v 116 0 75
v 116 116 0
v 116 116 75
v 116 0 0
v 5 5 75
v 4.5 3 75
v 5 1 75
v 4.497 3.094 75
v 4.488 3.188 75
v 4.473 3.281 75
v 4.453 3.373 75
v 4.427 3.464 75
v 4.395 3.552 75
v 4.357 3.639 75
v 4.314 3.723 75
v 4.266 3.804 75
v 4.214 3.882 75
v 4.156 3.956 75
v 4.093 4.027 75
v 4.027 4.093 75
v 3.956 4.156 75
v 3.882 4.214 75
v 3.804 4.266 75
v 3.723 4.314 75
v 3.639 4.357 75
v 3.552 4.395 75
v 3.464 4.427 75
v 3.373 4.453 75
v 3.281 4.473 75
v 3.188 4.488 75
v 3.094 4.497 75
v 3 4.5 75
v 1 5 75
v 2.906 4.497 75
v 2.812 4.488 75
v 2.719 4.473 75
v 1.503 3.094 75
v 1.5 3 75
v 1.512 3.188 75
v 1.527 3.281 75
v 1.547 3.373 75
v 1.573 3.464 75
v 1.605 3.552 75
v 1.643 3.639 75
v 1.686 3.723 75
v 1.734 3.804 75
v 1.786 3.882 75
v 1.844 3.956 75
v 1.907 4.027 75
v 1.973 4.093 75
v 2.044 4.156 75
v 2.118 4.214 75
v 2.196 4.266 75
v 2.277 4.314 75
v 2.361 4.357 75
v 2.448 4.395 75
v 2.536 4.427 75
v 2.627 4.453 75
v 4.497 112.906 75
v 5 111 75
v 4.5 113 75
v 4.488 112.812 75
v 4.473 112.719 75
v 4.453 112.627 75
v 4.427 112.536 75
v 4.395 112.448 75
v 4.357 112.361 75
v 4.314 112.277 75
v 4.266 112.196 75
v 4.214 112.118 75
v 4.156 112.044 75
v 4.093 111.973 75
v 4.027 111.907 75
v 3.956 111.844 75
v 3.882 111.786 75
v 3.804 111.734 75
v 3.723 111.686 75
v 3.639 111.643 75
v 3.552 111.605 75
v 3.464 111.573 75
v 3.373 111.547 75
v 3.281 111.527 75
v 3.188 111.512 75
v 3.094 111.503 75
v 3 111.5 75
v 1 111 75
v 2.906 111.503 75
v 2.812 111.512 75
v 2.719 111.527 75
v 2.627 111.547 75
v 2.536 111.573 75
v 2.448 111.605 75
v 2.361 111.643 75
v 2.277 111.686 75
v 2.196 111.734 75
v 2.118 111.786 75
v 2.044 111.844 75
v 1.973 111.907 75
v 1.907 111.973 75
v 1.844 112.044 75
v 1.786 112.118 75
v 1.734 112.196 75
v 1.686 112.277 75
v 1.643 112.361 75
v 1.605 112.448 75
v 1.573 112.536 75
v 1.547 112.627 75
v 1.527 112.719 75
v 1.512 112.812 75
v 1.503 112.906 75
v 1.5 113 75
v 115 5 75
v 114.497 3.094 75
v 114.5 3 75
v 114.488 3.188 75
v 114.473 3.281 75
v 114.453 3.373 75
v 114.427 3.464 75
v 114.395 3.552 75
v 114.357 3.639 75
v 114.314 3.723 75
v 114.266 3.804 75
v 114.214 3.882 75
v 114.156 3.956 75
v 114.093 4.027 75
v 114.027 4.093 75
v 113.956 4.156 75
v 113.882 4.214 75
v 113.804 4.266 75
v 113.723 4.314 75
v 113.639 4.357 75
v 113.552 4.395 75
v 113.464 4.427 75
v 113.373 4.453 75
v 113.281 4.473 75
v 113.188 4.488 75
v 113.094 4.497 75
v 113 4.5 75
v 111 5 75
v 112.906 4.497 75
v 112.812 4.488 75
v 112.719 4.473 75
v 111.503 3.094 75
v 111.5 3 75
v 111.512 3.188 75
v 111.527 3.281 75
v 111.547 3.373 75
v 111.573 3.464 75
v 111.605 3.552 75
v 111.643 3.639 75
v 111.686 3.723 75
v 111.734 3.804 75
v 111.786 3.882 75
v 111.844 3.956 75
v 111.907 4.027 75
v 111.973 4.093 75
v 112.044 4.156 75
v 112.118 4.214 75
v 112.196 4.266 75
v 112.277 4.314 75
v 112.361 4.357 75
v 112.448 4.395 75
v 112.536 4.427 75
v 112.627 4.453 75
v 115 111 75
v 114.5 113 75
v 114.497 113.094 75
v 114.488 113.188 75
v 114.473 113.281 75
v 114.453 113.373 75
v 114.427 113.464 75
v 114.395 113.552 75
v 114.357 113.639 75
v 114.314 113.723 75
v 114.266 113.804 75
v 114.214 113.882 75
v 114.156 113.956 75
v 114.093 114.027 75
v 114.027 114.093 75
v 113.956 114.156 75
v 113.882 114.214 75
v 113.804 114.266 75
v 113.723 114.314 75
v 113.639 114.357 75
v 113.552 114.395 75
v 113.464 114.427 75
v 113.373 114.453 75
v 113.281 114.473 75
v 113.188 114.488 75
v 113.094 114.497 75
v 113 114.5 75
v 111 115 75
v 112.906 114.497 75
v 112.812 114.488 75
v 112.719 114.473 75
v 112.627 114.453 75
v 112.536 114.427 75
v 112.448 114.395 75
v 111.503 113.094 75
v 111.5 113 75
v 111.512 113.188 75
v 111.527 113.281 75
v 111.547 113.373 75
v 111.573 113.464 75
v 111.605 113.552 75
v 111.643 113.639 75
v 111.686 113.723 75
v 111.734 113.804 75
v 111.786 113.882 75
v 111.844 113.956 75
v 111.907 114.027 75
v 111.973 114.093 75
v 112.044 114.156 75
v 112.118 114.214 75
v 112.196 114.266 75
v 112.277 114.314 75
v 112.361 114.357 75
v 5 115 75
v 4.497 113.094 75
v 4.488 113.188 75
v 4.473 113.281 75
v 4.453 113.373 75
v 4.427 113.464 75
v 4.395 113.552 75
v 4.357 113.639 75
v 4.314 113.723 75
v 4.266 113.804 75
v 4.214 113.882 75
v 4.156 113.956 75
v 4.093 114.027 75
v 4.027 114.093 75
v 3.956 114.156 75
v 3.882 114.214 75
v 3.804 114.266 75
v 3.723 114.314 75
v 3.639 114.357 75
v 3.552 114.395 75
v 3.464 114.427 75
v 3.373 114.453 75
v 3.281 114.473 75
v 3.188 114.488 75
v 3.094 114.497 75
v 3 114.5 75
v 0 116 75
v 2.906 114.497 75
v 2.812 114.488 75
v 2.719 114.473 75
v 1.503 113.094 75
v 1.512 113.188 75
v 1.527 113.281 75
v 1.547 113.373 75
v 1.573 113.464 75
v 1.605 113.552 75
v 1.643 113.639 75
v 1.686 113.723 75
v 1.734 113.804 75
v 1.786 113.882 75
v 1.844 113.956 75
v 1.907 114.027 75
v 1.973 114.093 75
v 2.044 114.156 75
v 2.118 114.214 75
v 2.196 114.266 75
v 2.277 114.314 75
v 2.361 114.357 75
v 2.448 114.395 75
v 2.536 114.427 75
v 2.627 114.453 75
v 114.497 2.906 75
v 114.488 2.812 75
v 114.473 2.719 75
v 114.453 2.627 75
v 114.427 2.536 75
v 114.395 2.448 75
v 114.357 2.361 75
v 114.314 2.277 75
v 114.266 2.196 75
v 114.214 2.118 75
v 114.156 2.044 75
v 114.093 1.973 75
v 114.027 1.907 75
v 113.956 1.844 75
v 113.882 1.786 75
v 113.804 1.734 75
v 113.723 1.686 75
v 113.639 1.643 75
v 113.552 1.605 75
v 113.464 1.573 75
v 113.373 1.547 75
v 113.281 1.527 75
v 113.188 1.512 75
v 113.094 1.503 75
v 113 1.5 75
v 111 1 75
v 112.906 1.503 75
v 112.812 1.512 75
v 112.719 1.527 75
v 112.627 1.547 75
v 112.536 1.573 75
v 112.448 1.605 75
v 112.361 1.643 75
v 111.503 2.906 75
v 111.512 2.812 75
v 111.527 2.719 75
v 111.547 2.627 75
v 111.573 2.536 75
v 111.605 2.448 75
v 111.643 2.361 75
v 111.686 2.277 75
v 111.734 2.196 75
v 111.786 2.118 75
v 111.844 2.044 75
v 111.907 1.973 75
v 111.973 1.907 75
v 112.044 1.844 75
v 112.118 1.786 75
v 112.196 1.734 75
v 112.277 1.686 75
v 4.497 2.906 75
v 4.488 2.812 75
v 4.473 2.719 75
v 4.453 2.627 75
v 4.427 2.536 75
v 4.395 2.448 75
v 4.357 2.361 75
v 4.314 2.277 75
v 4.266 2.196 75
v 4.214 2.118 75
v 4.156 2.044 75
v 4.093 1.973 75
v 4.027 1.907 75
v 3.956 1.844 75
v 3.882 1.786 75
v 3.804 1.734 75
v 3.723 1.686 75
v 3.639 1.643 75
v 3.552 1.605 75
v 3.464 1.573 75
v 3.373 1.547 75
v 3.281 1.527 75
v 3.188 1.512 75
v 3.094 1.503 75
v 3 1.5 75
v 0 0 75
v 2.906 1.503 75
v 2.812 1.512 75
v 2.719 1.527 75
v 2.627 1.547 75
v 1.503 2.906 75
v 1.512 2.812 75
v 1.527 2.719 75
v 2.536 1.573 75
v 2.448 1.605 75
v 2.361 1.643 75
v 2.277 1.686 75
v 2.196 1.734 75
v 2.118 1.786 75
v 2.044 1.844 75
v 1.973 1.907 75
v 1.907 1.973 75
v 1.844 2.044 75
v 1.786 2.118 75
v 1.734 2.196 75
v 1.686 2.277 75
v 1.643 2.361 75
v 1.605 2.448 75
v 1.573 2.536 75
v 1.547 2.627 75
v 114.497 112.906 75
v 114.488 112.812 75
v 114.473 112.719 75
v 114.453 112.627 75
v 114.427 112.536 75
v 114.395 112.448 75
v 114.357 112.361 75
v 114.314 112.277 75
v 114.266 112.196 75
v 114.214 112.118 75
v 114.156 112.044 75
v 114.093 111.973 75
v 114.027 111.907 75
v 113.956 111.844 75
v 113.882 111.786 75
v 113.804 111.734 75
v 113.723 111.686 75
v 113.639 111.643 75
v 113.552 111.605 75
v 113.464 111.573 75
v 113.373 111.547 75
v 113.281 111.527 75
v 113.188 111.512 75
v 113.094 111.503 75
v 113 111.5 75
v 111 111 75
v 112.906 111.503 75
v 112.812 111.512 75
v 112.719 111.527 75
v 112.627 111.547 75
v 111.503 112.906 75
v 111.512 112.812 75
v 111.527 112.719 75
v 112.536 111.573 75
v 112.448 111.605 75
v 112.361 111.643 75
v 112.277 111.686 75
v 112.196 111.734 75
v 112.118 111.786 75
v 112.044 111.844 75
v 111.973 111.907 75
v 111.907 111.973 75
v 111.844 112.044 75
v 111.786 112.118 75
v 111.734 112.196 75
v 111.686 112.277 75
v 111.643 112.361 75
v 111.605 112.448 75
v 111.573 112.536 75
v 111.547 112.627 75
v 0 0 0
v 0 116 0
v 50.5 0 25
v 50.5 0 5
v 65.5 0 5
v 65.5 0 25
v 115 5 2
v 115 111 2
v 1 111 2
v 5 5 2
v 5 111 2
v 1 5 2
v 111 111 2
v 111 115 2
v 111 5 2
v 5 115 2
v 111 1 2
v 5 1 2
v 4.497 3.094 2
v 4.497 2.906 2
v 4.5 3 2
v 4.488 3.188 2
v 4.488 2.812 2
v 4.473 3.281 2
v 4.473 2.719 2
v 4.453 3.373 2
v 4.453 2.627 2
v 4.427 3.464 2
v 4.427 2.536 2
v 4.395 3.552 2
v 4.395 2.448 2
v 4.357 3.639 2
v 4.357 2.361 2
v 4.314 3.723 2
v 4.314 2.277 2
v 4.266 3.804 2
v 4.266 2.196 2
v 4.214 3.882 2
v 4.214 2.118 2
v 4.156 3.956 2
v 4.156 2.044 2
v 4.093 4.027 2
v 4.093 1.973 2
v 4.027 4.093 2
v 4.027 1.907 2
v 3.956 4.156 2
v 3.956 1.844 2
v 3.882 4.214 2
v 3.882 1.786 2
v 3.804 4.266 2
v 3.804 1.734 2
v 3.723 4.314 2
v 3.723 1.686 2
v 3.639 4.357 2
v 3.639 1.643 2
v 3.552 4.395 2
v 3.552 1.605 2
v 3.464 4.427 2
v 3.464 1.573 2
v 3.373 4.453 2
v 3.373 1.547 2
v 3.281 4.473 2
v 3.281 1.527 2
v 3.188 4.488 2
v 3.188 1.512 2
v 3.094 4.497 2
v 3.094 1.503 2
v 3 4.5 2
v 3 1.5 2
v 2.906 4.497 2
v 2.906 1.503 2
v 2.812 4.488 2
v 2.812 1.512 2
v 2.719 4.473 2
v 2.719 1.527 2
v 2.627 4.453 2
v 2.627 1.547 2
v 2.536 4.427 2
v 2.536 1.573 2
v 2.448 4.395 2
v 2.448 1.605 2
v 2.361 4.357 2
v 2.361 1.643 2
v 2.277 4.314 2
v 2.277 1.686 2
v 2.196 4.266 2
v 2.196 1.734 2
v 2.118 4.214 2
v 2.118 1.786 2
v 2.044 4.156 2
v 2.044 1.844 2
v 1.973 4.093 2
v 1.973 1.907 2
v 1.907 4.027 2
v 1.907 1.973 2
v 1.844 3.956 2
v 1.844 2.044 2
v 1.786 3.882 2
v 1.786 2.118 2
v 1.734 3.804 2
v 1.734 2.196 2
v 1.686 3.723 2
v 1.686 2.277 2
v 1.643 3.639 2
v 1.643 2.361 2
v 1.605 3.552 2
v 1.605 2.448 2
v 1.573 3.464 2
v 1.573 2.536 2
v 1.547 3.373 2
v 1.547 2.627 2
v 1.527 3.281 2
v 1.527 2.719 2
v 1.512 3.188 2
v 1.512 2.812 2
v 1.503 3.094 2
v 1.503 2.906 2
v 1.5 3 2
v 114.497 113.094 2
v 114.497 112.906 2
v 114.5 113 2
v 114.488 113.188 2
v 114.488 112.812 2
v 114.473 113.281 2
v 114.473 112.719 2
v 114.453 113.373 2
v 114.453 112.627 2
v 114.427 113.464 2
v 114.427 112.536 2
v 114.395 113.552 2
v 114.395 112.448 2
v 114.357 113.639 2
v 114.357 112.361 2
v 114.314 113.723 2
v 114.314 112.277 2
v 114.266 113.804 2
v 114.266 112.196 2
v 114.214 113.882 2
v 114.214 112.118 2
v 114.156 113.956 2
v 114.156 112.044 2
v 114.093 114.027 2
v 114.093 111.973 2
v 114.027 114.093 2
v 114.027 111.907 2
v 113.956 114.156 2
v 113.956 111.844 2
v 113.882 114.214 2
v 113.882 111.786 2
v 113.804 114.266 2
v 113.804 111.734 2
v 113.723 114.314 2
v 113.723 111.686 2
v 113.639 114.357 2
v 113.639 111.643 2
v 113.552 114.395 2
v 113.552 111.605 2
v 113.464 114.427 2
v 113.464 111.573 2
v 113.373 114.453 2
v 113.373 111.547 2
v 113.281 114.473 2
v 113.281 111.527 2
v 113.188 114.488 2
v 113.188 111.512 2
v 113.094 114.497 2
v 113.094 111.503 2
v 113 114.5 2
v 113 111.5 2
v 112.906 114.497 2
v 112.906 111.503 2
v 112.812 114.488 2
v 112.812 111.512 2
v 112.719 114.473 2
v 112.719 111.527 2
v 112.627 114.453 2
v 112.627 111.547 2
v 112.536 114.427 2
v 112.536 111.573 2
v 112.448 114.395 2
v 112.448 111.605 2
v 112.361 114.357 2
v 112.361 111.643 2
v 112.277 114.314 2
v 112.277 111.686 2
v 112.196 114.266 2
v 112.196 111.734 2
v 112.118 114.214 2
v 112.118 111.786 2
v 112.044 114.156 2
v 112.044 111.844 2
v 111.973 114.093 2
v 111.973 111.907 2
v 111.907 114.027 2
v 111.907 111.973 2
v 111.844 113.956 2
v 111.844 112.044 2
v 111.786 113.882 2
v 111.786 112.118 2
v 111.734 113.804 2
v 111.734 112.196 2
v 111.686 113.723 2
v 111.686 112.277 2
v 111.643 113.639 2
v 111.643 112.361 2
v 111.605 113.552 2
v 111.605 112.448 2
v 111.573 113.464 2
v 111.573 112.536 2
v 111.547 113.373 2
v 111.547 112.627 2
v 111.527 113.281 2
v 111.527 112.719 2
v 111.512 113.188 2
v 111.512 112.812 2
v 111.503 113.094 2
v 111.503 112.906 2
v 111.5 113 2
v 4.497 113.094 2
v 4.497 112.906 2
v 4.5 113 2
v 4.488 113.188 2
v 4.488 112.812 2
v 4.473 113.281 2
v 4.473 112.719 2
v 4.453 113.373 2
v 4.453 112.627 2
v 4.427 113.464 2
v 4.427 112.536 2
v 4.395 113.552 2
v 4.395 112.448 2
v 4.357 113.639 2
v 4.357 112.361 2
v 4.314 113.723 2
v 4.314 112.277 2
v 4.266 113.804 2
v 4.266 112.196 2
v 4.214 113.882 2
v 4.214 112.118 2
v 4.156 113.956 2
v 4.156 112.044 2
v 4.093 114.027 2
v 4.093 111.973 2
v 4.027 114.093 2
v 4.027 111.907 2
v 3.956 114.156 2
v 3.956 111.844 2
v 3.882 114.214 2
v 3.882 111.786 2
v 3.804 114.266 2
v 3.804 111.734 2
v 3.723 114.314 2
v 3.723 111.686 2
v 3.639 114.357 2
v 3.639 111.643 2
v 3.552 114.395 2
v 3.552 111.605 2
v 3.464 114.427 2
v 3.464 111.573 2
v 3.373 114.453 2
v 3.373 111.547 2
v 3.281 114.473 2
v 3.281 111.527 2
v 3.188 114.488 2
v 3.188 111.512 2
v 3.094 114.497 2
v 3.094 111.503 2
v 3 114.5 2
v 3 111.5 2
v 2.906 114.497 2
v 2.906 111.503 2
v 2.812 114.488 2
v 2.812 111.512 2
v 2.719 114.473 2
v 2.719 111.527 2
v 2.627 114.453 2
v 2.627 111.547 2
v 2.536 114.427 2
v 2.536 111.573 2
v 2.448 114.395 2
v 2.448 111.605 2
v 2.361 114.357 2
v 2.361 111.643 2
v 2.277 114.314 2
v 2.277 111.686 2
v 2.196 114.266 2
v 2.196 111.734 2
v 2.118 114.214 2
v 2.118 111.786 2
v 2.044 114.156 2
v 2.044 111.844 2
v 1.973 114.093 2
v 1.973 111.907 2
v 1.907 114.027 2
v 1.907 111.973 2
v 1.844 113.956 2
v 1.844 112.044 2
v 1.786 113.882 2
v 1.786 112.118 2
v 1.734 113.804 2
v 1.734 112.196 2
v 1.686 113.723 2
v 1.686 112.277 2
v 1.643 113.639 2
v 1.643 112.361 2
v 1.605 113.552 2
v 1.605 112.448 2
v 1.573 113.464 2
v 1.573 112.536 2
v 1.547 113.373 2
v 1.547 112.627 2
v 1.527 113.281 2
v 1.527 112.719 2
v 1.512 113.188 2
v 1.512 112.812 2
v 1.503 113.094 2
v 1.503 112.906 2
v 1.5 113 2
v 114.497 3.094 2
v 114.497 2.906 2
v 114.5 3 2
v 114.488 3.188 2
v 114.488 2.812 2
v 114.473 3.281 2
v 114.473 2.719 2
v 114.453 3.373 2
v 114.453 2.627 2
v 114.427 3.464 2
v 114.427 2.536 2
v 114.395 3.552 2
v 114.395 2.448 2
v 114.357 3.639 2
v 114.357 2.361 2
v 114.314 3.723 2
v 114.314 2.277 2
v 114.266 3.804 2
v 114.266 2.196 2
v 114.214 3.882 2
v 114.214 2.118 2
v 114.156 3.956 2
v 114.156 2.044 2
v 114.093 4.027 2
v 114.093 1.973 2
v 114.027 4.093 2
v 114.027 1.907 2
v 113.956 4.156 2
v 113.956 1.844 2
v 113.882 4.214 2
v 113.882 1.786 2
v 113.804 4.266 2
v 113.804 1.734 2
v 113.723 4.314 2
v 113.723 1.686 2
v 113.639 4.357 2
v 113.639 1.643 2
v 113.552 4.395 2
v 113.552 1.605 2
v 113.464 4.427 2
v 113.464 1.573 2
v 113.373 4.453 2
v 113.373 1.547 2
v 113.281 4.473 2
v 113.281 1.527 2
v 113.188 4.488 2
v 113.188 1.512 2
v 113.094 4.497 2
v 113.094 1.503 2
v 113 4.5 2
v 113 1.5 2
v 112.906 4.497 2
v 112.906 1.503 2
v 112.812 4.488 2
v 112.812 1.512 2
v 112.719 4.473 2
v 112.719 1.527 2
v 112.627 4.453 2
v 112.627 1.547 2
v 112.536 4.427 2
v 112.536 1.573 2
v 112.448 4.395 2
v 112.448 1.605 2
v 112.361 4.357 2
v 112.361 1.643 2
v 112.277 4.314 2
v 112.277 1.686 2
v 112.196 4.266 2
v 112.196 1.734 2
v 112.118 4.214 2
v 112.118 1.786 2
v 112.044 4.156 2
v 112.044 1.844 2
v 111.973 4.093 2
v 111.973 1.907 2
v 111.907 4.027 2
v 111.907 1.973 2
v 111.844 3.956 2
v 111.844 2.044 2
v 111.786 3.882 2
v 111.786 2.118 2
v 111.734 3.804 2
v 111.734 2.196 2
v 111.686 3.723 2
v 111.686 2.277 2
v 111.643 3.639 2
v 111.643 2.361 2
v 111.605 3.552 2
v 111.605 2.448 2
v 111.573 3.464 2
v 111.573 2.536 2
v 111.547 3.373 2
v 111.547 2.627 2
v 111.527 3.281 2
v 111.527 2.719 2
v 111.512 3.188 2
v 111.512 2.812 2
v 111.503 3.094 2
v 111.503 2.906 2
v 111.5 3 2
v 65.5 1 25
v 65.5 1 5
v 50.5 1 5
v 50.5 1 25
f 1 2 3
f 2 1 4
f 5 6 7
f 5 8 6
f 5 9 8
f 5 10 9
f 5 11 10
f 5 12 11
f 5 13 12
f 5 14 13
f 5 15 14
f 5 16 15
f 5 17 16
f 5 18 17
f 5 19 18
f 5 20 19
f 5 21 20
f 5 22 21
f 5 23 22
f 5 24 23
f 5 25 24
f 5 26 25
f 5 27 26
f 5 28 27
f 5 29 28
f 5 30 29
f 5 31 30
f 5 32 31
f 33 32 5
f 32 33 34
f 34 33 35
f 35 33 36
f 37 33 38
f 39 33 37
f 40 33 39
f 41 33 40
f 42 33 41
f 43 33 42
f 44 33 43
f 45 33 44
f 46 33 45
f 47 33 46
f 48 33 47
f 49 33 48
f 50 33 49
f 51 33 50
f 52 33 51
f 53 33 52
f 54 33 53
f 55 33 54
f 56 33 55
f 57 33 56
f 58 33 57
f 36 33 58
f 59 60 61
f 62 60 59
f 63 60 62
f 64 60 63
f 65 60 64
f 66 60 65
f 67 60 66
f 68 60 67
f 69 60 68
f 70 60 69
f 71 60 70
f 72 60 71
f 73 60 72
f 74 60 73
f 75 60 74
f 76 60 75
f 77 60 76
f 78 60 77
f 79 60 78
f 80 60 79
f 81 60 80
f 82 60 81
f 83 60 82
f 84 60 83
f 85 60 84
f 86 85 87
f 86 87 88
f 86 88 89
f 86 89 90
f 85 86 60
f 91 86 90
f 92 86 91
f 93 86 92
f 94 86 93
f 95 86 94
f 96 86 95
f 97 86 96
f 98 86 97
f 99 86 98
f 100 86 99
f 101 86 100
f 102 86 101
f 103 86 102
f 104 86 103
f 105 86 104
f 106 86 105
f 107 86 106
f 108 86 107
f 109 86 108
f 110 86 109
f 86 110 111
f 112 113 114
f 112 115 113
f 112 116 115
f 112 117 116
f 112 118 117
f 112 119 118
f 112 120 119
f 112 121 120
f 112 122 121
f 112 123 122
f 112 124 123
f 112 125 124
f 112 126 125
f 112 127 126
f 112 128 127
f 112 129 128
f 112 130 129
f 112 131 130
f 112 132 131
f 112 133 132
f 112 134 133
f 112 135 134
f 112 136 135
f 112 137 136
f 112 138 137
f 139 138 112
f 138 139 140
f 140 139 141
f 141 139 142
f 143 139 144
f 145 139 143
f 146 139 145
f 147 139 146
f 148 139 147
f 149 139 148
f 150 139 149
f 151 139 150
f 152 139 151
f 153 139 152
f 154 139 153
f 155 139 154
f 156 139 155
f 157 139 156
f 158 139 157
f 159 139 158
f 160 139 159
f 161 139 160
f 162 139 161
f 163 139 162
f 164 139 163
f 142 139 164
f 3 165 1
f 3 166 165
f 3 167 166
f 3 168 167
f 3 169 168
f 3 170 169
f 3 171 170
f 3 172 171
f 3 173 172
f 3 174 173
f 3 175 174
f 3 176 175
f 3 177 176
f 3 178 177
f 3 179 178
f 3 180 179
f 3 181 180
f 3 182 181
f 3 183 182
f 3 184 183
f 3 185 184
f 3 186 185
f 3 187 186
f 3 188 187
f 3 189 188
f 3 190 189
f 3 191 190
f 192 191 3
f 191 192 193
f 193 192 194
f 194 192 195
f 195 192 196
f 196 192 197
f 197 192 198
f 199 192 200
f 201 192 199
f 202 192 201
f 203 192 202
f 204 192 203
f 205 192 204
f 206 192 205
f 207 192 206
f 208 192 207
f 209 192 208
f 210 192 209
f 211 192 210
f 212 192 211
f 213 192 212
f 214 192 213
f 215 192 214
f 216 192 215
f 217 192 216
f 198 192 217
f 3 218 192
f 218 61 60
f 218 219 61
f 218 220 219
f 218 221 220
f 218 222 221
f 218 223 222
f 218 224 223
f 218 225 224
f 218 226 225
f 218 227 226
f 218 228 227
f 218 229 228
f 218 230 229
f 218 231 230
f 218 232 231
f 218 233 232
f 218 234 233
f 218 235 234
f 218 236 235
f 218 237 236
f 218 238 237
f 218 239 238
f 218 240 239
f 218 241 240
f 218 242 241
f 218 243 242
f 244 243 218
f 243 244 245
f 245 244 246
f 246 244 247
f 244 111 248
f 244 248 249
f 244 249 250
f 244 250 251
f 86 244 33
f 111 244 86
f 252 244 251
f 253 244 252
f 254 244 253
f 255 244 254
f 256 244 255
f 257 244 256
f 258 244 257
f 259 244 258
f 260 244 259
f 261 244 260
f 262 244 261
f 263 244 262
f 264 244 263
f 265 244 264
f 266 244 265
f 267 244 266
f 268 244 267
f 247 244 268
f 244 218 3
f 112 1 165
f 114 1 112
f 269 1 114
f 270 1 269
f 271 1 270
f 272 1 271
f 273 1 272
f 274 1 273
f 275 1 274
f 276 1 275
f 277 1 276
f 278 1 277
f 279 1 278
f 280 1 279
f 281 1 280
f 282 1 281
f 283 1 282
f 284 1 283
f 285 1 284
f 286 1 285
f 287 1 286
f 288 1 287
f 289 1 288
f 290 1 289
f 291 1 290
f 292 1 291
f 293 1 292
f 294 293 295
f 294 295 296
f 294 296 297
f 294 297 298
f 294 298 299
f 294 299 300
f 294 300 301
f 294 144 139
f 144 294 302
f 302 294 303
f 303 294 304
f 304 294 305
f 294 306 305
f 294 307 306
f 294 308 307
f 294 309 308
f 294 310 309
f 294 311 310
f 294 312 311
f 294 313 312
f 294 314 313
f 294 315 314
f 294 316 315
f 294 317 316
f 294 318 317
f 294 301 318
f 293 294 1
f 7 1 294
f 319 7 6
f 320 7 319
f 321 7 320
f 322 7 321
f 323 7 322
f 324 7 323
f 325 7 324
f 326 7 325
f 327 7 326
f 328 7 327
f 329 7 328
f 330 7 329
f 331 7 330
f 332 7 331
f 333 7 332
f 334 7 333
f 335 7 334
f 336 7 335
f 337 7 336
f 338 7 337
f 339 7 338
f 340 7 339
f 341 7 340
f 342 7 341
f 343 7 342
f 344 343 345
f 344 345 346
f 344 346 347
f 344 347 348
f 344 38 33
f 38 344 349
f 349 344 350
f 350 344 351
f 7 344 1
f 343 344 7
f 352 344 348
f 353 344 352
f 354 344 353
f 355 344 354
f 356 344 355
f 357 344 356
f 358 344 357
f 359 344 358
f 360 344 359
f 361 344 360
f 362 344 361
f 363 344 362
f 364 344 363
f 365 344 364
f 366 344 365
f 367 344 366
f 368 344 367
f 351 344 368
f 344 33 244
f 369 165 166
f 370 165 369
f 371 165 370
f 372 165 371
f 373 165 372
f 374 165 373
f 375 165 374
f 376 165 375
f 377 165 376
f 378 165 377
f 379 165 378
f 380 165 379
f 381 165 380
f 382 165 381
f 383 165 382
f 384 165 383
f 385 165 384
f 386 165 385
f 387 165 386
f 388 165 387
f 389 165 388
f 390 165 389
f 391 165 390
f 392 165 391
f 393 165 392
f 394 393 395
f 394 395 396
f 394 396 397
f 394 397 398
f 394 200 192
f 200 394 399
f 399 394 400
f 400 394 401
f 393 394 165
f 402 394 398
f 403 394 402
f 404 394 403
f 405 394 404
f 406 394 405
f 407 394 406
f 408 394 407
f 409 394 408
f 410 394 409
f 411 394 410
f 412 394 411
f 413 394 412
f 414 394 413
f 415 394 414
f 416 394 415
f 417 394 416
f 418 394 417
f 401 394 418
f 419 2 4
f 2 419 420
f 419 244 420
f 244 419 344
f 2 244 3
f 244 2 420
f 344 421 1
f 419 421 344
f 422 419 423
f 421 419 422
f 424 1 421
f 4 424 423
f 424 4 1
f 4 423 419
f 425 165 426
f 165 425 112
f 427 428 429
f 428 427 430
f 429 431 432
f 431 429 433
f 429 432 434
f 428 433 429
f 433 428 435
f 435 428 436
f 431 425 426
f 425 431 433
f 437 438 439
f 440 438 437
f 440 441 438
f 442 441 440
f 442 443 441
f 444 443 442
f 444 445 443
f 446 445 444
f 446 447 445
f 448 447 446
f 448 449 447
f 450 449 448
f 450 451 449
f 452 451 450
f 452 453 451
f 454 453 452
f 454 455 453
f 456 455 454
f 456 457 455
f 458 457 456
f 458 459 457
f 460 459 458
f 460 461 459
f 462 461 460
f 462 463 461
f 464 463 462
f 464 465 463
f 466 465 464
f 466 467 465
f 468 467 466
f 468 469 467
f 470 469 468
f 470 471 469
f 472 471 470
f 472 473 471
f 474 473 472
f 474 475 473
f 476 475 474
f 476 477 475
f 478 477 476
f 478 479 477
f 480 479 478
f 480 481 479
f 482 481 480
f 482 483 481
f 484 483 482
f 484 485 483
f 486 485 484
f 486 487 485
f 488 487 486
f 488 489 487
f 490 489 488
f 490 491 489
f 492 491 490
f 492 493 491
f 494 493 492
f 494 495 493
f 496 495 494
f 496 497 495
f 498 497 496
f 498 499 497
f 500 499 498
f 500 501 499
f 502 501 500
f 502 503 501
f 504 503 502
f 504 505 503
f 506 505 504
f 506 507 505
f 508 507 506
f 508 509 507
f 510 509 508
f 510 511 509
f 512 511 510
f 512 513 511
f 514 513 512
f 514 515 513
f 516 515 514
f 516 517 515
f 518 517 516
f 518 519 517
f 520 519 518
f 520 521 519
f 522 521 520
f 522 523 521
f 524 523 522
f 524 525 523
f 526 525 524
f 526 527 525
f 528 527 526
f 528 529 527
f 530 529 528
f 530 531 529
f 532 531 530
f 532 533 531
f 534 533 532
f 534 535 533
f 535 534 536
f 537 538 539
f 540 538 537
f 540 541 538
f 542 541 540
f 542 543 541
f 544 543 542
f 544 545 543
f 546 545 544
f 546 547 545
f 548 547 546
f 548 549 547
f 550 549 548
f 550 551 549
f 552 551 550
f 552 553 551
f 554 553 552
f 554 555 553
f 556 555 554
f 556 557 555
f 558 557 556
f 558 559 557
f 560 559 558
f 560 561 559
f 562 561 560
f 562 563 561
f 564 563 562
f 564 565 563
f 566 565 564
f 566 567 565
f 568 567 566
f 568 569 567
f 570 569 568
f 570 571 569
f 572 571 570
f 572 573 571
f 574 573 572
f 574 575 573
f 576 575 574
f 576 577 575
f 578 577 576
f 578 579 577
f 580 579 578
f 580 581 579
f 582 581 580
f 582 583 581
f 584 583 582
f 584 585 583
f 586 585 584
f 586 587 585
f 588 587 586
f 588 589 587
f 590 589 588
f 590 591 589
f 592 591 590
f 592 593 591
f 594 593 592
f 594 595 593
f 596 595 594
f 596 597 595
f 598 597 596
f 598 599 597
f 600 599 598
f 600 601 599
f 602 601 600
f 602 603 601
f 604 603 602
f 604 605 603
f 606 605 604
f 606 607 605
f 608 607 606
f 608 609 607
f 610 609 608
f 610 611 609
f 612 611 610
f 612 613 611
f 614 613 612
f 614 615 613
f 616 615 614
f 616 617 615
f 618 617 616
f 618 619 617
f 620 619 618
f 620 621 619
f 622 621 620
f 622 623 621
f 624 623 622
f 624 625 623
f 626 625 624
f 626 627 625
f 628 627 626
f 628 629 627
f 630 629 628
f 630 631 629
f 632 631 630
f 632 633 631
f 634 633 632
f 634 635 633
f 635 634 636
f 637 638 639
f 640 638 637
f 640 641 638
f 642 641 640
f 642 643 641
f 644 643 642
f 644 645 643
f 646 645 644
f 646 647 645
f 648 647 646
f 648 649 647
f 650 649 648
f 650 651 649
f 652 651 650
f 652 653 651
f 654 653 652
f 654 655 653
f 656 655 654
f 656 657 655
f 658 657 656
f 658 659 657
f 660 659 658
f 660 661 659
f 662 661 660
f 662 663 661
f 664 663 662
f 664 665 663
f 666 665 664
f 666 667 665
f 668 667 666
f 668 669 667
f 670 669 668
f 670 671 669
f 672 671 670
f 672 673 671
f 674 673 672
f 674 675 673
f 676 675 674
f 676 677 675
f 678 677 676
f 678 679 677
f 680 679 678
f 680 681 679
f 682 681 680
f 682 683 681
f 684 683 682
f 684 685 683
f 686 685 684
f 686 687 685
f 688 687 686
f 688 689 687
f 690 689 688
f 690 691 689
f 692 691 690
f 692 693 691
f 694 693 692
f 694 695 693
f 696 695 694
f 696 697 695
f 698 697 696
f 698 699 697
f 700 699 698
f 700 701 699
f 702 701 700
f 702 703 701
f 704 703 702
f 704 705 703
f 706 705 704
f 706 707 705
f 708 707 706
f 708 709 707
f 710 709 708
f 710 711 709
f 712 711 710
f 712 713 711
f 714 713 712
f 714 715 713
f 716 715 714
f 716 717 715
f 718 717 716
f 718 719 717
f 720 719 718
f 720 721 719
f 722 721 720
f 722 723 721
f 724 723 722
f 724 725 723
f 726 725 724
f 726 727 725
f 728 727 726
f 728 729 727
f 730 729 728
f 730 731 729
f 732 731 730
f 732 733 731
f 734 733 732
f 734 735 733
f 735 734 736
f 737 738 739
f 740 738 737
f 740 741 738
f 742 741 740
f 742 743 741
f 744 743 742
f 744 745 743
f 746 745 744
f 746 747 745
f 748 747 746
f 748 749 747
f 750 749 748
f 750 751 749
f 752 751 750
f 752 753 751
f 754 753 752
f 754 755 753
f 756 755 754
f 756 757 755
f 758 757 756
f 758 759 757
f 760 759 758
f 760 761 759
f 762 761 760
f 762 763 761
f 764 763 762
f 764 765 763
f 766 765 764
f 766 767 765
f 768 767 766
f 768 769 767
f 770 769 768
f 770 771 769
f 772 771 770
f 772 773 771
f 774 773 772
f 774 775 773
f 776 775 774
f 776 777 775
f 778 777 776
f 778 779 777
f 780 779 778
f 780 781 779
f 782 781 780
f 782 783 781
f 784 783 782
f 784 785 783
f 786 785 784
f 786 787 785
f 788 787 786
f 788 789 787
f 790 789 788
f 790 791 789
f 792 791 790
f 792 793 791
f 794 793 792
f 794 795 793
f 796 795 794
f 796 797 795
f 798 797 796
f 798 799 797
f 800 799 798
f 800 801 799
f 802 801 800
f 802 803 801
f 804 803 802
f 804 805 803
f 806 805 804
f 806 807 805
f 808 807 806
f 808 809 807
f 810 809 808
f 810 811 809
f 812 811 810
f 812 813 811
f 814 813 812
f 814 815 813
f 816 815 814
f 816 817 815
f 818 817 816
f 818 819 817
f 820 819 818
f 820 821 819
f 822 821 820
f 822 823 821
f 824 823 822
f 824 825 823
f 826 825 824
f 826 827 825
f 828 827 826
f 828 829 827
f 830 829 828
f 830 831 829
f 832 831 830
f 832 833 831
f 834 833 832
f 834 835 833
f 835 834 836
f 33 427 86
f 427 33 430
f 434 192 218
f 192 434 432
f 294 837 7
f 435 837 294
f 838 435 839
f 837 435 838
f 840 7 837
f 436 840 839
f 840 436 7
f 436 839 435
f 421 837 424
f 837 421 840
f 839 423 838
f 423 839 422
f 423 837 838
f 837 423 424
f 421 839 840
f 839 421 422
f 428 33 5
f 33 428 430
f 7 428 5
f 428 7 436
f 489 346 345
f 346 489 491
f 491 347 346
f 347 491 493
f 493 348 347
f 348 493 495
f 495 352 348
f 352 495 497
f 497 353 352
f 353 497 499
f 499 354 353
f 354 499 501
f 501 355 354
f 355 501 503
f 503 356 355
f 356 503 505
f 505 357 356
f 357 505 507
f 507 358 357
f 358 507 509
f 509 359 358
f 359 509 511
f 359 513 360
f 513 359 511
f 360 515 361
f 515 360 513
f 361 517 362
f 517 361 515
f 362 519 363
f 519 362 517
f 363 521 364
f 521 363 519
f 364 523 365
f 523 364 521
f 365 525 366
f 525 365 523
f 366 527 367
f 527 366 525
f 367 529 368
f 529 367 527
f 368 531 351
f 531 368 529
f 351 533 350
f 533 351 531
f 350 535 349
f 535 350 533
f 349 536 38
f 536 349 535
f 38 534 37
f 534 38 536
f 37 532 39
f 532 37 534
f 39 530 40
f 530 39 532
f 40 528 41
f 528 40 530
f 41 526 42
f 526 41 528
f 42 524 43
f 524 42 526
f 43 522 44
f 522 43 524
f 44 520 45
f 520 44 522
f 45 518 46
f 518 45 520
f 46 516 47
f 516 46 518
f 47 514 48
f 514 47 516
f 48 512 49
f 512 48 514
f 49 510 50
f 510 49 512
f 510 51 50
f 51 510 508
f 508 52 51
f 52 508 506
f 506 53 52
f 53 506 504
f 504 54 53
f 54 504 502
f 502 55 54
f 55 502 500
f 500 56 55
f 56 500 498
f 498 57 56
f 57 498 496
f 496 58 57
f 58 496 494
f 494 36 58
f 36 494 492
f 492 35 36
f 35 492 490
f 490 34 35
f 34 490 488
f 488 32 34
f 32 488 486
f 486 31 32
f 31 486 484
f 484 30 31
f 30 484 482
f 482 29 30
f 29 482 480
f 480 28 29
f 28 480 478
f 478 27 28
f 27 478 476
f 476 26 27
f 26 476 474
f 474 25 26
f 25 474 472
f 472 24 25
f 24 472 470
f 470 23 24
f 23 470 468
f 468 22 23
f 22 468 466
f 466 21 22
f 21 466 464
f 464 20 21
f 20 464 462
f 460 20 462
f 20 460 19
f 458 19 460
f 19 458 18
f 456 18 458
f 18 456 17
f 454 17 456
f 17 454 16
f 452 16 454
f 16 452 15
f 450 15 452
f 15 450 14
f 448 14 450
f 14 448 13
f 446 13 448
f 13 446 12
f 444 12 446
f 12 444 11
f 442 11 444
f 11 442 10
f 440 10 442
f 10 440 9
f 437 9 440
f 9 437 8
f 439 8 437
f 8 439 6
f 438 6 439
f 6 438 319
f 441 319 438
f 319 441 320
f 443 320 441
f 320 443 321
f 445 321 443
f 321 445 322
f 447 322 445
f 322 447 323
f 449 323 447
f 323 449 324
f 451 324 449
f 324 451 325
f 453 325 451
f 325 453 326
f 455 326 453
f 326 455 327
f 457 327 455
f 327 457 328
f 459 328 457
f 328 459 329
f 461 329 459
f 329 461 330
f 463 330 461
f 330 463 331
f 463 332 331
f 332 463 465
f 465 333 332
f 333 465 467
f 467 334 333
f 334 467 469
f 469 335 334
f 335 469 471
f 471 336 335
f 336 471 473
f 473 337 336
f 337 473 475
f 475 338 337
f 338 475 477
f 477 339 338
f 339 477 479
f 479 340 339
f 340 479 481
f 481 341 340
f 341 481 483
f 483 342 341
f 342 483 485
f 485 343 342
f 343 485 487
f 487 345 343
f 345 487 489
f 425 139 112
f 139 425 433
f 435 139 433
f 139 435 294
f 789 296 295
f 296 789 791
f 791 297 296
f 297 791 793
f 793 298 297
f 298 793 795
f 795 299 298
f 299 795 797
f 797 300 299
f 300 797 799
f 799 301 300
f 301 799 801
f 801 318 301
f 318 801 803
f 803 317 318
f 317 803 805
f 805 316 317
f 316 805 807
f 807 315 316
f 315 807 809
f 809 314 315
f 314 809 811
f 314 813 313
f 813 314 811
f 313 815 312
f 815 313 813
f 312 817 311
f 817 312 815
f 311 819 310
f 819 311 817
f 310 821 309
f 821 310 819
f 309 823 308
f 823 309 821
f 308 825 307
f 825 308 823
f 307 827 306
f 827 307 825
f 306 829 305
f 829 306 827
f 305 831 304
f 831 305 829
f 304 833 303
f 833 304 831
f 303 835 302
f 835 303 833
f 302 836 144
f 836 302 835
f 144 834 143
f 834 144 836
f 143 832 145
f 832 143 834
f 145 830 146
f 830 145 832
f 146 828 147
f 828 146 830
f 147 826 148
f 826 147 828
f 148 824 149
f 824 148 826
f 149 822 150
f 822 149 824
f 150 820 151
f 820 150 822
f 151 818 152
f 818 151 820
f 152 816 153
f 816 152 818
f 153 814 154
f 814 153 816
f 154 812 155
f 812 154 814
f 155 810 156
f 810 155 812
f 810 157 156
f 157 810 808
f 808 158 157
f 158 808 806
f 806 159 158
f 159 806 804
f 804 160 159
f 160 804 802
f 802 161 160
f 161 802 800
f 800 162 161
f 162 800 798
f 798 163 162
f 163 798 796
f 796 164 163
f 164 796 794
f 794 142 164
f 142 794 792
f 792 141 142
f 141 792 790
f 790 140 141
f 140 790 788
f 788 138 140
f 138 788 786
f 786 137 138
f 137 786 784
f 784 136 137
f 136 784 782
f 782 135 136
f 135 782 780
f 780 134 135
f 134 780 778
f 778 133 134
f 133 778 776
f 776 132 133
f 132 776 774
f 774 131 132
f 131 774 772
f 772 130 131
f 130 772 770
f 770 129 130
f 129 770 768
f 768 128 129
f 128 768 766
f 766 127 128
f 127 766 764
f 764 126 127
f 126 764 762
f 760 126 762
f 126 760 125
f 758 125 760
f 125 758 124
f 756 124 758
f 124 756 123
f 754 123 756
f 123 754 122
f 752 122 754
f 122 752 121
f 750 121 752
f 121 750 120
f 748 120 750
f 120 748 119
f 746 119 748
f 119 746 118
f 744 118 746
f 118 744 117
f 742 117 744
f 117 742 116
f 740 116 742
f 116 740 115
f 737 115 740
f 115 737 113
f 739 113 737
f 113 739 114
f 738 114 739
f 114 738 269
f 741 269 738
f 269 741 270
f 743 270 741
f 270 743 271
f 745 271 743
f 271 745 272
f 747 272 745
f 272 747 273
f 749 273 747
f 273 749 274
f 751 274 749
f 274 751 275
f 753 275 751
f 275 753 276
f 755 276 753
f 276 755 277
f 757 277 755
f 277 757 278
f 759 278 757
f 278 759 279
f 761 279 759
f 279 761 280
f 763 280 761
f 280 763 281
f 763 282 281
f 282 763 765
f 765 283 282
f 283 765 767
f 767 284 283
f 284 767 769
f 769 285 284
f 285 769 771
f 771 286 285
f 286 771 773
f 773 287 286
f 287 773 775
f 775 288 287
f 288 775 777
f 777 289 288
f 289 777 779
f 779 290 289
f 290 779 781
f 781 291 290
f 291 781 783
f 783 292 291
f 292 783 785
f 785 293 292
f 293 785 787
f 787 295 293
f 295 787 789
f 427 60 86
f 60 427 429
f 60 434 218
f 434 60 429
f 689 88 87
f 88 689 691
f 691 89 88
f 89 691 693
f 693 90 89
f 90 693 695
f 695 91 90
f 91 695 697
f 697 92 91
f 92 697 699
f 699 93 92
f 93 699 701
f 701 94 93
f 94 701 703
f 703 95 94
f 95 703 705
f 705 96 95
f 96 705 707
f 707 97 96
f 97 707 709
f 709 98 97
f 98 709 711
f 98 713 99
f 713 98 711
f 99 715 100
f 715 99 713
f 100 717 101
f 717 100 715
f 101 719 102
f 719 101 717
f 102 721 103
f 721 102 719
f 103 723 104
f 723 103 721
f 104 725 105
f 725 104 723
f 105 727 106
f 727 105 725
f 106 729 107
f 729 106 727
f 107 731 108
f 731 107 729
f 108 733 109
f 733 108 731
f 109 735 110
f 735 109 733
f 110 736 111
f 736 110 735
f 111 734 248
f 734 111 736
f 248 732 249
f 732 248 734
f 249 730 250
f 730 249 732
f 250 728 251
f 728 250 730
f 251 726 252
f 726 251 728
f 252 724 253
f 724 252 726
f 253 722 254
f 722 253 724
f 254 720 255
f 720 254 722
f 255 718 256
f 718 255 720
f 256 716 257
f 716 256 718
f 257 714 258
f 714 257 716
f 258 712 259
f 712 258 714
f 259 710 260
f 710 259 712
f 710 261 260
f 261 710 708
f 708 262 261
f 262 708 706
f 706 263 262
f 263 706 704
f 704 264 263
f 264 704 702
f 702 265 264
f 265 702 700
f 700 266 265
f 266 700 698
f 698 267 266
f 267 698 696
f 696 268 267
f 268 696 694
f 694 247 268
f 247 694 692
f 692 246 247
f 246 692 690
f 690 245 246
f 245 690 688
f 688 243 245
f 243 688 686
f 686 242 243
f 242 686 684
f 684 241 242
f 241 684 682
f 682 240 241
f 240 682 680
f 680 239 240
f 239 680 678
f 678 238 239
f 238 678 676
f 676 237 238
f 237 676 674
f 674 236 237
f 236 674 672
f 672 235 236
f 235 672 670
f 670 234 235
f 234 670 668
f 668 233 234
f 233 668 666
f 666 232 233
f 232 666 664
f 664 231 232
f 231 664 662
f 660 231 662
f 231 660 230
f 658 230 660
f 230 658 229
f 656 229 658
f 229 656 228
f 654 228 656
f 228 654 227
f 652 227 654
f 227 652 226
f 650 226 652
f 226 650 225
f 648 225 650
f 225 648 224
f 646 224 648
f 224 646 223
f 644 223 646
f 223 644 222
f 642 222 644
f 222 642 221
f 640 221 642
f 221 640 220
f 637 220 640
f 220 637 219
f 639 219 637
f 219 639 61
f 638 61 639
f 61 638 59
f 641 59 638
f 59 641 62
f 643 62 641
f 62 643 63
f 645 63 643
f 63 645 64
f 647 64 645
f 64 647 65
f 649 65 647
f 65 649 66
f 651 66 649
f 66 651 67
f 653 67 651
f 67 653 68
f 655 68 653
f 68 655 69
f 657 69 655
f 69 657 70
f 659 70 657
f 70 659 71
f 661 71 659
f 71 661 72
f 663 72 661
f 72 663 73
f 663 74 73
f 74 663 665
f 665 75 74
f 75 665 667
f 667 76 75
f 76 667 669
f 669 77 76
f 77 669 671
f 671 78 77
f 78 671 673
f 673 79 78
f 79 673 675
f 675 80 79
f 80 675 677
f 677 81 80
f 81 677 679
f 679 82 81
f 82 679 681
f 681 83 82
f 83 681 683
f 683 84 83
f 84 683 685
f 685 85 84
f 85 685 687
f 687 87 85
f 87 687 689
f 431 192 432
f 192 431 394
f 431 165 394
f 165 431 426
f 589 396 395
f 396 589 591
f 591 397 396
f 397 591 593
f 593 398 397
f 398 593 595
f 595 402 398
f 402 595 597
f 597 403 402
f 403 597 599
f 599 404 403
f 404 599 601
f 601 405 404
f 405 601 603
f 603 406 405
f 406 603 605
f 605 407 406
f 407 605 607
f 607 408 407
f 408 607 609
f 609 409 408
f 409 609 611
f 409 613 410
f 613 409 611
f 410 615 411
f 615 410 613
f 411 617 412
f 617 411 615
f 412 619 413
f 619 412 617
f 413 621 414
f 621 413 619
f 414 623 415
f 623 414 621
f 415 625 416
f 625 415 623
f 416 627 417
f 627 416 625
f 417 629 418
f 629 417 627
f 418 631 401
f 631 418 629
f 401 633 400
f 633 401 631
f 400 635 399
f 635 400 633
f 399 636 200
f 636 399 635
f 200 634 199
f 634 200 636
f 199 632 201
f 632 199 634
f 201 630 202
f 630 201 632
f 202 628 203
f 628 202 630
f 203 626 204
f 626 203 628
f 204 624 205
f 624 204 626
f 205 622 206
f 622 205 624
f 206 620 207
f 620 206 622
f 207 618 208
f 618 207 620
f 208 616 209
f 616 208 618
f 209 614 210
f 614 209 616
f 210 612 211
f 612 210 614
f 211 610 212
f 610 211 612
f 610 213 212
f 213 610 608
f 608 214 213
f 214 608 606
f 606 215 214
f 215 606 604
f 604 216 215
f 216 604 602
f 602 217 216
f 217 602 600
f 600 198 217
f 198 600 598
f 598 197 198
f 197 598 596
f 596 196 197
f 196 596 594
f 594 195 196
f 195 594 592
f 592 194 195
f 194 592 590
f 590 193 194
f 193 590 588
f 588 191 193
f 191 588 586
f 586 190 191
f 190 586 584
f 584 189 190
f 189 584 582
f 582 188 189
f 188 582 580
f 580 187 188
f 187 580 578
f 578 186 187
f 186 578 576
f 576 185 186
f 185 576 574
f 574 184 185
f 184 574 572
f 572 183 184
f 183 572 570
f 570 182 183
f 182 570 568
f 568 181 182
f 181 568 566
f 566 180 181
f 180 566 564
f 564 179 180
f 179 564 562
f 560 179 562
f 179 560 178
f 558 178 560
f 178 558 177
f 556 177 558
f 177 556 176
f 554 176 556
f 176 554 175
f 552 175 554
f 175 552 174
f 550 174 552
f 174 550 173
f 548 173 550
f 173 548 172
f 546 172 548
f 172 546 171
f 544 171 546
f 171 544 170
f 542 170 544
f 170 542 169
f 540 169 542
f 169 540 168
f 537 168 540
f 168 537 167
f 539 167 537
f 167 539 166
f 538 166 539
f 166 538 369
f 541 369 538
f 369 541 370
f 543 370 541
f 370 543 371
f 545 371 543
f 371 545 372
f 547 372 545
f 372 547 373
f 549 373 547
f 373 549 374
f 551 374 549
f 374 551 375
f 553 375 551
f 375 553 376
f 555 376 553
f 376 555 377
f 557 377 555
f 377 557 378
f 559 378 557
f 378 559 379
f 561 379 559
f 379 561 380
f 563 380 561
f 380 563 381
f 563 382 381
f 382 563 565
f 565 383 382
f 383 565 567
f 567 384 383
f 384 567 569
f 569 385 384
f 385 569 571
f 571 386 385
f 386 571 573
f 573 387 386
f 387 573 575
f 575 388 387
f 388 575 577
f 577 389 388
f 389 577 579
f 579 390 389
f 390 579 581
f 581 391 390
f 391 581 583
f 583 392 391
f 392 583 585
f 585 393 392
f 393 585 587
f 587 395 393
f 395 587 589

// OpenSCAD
$fn=100;
diam_button = 58;

plate = diam_button * 2;
heigth = 75;
wall_thickness =  2;
screw_hole_diam = 3;

module keystone(){
    rotate([0,-90,-90]){
        cube([20,15,wall_thickness]);
    }
}

module box(){
    inside_box = plate - wall_thickness;
    translate([plate/2, plate/2, heigth/2]){
    difference(){
        cube([plate, plate, heigth], center=true);
        translate([0, 0, wall_thickness/2]){
        cube([inside_box, inside_box, heigth-wall_thickness], center=true);
        }
    }
}
}

module screw_hole(diam, offset=1){
    center = diam + offset;
    difference(){
        square(center);
        translate([center/2, center/2, 0]){
            circle(diam/2);
        }
    }
}

module screw_3d(){
    linear_extrude(heigth){
        screw_hole(screw_hole_diam);
    }
}




difference(){
    box();
    translate([(plate-15)/2, 0, 5]){
        keystone();
    }
}

wall_trans = wall_thickness/2;
move = screw_hole_diam+1;

translate([wall_trans, wall_trans, 0]){
    screw_3d();
}
translate([plate-wall_trans-move, wall_trans, 0]){
    screw_3d();
}
translate([wall_trans, plate-wall_trans-move, 0]){
    screw_3d();
}
translate([plate-wall_trans-move, plate-wall_trans-move, 0]){
    screw_3d();
}
